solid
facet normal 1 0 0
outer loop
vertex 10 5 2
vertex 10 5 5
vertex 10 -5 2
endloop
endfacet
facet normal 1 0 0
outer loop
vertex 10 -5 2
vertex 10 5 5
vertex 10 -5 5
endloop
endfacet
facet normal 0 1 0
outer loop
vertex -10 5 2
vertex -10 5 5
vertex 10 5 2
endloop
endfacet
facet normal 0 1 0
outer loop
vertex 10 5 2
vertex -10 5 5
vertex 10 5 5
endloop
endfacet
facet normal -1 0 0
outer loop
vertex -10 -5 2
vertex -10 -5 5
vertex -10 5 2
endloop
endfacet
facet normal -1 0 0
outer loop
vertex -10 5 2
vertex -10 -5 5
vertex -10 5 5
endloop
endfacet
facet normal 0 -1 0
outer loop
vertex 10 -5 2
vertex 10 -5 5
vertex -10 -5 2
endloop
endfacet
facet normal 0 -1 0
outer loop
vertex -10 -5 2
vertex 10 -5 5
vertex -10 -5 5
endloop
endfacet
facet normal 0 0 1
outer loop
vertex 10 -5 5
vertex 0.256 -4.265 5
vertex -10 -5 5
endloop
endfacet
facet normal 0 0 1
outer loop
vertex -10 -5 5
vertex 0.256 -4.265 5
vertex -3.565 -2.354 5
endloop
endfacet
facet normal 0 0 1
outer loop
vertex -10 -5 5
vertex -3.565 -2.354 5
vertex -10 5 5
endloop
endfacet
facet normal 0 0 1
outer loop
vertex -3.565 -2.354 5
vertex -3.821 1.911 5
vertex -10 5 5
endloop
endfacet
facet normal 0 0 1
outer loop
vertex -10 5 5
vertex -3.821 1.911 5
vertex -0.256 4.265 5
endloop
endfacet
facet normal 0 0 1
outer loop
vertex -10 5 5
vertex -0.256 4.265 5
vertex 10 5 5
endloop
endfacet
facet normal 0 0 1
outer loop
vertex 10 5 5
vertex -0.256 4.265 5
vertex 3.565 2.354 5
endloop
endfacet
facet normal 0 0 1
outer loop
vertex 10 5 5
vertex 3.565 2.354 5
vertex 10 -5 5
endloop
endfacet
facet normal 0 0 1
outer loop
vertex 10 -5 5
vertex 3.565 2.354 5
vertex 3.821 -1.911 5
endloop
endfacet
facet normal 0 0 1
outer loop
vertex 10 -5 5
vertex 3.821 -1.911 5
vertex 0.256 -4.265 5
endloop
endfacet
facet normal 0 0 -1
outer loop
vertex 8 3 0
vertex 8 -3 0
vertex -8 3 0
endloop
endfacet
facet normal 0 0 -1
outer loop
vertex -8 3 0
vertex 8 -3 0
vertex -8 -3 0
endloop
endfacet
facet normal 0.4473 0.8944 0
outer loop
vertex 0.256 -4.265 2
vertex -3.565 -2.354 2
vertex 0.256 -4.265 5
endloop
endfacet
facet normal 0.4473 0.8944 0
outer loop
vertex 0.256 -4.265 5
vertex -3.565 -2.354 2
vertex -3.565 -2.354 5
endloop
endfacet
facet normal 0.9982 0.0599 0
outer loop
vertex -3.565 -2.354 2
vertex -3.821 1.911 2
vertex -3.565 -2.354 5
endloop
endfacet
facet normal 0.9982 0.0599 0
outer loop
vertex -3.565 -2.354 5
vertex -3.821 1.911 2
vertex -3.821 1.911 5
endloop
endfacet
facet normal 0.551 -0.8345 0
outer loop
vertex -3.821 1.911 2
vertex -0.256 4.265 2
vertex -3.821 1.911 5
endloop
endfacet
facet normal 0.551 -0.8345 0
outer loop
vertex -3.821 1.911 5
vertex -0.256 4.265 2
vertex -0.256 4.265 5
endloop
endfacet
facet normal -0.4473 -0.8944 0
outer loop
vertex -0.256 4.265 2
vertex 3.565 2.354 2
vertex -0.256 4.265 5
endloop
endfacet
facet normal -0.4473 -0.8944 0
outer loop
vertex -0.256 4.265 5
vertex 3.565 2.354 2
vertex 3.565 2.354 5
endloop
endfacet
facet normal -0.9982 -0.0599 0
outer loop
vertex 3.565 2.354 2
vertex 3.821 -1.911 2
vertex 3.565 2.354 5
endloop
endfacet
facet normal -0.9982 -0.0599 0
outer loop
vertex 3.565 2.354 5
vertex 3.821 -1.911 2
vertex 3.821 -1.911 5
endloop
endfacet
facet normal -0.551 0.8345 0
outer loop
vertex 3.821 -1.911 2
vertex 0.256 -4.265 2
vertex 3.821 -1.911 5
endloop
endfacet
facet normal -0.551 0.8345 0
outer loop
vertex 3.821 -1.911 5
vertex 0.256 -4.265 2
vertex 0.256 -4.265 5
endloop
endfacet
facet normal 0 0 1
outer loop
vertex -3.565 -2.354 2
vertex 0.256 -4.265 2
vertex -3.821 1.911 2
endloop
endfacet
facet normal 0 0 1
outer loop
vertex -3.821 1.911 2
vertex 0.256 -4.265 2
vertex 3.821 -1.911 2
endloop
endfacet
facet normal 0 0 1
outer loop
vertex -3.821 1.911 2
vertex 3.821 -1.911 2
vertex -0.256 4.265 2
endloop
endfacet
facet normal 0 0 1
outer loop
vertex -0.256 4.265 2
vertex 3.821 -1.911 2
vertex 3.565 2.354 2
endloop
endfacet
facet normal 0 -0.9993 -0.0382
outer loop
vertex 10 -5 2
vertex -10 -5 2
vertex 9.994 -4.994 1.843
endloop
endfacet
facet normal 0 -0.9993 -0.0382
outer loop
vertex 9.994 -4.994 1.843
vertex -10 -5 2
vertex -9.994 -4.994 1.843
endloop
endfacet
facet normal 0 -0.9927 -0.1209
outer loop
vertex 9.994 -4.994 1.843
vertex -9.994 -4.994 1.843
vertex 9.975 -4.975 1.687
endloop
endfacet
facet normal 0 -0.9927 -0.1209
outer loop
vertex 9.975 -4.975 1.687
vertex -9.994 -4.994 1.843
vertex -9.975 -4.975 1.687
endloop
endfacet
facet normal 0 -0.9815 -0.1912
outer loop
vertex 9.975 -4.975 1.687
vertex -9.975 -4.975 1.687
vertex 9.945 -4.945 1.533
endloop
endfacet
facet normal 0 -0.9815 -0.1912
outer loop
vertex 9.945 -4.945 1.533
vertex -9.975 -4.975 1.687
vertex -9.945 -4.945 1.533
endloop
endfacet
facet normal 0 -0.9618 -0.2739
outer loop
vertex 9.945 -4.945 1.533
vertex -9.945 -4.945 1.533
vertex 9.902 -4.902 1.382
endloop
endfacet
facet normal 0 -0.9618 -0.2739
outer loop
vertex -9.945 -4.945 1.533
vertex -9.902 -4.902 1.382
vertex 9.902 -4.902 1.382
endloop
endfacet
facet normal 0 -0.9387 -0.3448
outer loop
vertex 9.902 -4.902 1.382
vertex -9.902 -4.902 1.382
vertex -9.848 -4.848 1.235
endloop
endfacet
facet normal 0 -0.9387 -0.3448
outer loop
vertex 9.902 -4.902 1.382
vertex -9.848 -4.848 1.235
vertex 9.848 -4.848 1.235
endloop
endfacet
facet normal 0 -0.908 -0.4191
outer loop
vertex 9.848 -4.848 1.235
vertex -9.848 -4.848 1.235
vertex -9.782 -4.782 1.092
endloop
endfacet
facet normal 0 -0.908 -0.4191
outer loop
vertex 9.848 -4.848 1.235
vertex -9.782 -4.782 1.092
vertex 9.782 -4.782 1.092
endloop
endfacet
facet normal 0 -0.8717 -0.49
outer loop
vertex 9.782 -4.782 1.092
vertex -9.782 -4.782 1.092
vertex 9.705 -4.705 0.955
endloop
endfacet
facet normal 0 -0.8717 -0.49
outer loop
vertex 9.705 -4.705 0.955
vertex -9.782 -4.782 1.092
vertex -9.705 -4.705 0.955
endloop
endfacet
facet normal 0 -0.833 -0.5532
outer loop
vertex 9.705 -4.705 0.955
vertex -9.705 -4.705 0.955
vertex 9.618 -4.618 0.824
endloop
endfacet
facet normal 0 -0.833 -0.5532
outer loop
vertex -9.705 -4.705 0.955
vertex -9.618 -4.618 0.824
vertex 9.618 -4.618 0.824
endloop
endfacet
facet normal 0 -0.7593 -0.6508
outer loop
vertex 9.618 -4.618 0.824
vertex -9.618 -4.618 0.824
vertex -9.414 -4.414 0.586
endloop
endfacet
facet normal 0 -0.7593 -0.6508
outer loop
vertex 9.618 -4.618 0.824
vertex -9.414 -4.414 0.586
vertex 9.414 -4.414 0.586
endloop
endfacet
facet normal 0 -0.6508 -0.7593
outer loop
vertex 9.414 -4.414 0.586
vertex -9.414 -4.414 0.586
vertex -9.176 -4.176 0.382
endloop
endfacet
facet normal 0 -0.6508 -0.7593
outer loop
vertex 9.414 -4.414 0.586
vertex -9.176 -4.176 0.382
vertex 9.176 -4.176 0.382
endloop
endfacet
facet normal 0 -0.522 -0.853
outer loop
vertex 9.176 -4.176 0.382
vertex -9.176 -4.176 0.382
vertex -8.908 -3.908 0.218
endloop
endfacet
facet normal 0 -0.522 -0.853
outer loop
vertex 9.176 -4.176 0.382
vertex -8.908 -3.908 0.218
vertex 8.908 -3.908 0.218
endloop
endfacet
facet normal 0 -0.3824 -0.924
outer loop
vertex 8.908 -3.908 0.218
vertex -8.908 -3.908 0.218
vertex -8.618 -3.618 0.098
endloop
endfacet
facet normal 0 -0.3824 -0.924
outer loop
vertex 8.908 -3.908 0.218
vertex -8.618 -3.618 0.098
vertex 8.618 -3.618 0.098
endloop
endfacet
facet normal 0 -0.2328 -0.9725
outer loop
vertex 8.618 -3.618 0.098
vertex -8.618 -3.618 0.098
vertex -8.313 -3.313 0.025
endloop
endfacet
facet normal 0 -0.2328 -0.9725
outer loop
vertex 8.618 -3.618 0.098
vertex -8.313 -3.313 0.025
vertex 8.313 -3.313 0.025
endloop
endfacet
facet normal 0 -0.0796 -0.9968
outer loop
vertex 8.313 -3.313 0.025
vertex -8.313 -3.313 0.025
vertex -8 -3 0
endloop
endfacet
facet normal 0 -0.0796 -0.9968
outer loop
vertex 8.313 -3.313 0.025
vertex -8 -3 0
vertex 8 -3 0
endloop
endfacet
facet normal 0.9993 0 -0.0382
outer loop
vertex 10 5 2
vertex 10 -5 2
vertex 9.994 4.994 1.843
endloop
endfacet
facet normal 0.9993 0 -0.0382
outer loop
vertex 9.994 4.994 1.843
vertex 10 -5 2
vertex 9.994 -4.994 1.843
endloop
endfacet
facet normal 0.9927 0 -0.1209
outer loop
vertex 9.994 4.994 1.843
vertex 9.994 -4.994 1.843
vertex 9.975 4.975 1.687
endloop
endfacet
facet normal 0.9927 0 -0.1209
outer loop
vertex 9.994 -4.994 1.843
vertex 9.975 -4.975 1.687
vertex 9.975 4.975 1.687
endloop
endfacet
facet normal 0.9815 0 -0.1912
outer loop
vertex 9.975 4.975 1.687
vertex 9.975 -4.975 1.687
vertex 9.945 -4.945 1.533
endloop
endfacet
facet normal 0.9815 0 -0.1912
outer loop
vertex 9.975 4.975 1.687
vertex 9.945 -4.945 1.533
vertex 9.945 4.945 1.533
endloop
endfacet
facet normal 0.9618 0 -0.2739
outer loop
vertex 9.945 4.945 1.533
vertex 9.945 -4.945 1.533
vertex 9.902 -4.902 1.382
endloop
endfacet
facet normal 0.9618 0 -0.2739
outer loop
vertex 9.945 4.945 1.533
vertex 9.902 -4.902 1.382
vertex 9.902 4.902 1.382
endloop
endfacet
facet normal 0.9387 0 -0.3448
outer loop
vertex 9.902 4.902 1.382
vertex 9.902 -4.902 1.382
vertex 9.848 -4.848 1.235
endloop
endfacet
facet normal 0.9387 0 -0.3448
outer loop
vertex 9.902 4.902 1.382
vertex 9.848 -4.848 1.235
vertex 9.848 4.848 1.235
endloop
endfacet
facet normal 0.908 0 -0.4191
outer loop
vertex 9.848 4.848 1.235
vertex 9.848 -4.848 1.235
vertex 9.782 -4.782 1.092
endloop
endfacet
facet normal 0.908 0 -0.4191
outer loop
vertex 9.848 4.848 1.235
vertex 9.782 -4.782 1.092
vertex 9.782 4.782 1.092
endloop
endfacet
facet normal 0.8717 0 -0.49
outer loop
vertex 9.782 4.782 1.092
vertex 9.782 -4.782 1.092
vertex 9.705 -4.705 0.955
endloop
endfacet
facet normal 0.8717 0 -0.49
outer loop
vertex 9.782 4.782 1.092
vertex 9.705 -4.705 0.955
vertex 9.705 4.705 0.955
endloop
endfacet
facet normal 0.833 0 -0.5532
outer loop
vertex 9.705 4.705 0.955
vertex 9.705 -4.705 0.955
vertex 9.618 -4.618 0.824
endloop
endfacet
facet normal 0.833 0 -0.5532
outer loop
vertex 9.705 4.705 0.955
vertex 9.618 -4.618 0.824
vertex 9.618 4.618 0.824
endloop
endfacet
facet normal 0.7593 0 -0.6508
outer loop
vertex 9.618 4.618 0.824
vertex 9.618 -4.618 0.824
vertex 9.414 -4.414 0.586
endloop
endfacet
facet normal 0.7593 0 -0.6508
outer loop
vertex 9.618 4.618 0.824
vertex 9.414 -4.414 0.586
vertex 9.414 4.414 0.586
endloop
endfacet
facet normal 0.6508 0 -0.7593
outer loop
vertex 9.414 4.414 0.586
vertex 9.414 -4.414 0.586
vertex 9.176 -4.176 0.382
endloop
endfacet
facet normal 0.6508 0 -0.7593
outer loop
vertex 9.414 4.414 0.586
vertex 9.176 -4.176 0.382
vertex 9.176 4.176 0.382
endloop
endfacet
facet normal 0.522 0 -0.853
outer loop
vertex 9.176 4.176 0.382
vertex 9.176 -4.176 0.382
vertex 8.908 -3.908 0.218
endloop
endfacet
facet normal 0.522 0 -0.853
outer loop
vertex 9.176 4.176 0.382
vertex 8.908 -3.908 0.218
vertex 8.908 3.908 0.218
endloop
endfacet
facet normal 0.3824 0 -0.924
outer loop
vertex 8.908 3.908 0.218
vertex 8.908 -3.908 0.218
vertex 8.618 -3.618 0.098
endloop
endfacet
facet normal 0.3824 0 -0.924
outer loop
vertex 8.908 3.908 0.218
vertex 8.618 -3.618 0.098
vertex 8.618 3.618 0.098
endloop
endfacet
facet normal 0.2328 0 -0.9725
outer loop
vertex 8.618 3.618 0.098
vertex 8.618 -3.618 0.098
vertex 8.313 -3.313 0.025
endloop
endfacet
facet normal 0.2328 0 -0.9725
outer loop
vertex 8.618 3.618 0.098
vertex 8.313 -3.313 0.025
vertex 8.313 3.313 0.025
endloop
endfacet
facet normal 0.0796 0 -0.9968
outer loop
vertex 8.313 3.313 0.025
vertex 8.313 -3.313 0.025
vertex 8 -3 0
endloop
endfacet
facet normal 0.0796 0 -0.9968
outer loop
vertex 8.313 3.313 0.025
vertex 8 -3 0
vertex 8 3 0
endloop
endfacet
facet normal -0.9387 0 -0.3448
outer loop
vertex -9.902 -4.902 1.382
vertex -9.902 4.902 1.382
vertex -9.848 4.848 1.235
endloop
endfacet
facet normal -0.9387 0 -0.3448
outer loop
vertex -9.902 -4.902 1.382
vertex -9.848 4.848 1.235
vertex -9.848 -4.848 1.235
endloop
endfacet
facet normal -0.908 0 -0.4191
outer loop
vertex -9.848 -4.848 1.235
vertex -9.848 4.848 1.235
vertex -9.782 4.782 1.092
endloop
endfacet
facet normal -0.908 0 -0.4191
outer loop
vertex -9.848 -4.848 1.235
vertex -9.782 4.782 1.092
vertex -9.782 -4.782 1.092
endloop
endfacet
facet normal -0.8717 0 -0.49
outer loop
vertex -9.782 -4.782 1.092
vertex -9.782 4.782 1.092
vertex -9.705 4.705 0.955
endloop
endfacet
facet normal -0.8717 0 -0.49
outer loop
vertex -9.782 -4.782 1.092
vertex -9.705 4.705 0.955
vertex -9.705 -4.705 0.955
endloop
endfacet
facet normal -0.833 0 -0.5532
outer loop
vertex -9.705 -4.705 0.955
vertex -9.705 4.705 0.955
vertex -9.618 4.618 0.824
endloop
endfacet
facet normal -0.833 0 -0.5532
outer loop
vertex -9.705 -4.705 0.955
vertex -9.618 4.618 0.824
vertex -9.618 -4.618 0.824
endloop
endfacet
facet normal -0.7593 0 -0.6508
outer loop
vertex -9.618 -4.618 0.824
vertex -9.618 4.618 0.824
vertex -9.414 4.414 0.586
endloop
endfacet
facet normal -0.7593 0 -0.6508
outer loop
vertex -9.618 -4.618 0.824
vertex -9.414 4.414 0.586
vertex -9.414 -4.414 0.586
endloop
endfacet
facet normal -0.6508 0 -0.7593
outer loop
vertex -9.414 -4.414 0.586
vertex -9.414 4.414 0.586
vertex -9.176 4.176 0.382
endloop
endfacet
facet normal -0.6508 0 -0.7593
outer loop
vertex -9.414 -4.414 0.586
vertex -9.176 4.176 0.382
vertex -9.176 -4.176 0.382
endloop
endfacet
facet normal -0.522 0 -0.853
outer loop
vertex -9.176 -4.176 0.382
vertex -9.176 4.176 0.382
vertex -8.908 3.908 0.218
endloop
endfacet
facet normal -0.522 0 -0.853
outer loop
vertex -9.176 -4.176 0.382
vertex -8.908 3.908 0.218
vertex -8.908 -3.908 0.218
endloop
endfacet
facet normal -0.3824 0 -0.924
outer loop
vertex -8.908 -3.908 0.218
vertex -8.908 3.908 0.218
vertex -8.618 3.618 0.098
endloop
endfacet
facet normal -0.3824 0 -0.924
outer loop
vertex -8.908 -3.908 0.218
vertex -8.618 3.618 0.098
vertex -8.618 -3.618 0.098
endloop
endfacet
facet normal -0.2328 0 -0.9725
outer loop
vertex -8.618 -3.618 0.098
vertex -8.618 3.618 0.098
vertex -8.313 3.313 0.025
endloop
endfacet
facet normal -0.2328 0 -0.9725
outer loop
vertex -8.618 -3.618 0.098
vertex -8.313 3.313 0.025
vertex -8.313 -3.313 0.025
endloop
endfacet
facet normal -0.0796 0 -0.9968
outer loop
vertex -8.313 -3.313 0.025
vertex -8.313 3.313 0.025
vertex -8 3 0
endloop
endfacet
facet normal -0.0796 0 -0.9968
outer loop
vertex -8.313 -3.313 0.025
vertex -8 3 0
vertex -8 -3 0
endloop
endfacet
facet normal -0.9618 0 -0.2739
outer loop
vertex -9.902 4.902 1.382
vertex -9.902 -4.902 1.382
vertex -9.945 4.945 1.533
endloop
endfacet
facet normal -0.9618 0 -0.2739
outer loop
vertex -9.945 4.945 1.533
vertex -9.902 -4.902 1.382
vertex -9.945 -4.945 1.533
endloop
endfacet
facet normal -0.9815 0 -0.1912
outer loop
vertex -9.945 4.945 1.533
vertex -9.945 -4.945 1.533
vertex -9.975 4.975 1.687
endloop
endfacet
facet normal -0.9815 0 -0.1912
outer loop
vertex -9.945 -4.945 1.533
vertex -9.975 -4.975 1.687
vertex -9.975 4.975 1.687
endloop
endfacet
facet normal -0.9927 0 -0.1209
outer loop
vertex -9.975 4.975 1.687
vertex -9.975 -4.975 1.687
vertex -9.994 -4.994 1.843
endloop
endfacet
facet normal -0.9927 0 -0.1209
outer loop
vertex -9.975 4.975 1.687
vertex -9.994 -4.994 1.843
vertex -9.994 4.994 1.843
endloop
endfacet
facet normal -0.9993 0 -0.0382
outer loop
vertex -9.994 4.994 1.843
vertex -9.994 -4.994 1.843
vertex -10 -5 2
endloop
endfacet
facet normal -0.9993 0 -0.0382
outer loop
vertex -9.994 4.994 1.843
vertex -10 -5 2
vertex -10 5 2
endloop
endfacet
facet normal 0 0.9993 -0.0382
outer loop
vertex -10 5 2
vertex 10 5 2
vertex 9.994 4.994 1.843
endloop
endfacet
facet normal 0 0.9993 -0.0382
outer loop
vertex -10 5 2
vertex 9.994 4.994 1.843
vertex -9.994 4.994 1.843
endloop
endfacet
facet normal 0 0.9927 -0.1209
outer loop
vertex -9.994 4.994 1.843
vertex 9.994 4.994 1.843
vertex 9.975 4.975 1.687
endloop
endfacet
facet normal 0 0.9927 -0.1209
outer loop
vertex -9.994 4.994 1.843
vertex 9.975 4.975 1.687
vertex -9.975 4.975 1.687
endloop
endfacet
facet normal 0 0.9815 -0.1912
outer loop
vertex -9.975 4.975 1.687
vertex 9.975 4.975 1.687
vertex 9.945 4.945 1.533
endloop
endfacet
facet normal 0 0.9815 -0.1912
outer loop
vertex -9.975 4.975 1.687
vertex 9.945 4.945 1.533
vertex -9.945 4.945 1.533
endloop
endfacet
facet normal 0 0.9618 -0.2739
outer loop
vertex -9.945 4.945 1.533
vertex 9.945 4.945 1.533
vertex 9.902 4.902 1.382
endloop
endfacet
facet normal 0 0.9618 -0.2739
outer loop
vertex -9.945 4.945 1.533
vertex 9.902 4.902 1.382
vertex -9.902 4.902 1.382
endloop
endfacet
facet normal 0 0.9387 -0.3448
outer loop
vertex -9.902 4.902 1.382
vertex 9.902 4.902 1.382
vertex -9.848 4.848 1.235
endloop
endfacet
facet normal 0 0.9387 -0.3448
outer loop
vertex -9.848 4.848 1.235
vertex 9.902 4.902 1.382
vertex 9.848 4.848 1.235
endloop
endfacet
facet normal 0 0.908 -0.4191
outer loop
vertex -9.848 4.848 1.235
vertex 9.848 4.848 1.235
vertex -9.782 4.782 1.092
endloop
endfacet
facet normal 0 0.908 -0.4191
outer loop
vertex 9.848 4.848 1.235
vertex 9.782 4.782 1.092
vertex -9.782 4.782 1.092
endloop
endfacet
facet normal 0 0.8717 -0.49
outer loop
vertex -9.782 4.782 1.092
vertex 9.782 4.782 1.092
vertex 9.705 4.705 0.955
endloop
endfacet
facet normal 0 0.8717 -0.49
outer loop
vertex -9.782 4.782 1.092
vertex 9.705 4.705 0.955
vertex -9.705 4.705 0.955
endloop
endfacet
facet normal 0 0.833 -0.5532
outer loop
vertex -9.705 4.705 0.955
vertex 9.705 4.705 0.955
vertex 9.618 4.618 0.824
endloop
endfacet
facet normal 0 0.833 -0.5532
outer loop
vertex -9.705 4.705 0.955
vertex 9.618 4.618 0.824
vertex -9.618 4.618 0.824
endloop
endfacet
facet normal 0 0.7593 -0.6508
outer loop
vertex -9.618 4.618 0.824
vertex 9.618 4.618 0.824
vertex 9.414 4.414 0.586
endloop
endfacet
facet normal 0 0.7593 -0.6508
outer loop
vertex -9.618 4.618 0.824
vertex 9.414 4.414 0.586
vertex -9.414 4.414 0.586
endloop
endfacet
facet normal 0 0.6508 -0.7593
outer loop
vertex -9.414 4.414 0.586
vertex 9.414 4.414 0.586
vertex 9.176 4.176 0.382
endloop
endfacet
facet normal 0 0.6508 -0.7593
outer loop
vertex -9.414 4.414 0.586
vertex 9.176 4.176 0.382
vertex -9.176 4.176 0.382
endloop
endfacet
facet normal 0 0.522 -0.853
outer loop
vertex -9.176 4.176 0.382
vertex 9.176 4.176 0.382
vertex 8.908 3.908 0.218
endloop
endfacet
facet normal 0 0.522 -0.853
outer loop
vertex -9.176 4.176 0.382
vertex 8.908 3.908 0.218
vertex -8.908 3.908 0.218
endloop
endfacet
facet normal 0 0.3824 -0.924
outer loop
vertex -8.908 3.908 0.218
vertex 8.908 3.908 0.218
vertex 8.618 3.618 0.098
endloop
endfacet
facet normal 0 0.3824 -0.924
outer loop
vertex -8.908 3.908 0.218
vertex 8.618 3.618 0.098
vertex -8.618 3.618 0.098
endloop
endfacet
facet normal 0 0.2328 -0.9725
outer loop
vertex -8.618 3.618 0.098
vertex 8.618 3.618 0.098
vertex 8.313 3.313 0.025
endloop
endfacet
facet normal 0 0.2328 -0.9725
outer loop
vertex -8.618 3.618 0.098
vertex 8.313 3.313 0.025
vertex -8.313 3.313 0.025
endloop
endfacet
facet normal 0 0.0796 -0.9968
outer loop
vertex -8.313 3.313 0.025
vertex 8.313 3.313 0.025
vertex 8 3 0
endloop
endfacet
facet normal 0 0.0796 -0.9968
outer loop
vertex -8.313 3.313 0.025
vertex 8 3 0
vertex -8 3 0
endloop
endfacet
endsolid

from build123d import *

# Parameters (mm, degrees)
SKETCH1_W           = 20
SKETCH1_H           = 10
BOSS_EXTRUDE1_DEPTH = 5
CUT_EXTRUDE1_DEPTH  = 3
FILLET1_R           = 2


with BuildPart() as part:
    # Sketch1 → Boss-Extrude1 (new body)
    with BuildSketch(Plane.XY):
        Rectangle(SKETCH1_W, SKETCH1_H)
    extrude(amount=BOSS_EXTRUDE1_DEPTH)

    # Sketch2 → Cut-Extrude1 (cut)
    with BuildSketch(Plane.XY.offset(5)):
        Polygon((0.255981481, -4.264716499), (3.821343568, -1.910671784), (3.565362087, 2.354044715), (-0.255981481, 4.264716499), (-3.821343568, 1.910671784), (-3.565362087, -2.354044715), align=None)
    extrude(amount=-CUT_EXTRUDE1_DEPTH, mode=Mode.SUBTRACT)

    # Fillet1
    fillet1_edges = [part.edges().sort_by_distance(p)[0] for p in [
        (0, -5, 0),
        (-10, 0, 0),
        (0, 5, 0),
        (10, 0, 0),
    ]]
    fillet(fillet1_edges, radius=FILLET1_R)


solid = part.part
